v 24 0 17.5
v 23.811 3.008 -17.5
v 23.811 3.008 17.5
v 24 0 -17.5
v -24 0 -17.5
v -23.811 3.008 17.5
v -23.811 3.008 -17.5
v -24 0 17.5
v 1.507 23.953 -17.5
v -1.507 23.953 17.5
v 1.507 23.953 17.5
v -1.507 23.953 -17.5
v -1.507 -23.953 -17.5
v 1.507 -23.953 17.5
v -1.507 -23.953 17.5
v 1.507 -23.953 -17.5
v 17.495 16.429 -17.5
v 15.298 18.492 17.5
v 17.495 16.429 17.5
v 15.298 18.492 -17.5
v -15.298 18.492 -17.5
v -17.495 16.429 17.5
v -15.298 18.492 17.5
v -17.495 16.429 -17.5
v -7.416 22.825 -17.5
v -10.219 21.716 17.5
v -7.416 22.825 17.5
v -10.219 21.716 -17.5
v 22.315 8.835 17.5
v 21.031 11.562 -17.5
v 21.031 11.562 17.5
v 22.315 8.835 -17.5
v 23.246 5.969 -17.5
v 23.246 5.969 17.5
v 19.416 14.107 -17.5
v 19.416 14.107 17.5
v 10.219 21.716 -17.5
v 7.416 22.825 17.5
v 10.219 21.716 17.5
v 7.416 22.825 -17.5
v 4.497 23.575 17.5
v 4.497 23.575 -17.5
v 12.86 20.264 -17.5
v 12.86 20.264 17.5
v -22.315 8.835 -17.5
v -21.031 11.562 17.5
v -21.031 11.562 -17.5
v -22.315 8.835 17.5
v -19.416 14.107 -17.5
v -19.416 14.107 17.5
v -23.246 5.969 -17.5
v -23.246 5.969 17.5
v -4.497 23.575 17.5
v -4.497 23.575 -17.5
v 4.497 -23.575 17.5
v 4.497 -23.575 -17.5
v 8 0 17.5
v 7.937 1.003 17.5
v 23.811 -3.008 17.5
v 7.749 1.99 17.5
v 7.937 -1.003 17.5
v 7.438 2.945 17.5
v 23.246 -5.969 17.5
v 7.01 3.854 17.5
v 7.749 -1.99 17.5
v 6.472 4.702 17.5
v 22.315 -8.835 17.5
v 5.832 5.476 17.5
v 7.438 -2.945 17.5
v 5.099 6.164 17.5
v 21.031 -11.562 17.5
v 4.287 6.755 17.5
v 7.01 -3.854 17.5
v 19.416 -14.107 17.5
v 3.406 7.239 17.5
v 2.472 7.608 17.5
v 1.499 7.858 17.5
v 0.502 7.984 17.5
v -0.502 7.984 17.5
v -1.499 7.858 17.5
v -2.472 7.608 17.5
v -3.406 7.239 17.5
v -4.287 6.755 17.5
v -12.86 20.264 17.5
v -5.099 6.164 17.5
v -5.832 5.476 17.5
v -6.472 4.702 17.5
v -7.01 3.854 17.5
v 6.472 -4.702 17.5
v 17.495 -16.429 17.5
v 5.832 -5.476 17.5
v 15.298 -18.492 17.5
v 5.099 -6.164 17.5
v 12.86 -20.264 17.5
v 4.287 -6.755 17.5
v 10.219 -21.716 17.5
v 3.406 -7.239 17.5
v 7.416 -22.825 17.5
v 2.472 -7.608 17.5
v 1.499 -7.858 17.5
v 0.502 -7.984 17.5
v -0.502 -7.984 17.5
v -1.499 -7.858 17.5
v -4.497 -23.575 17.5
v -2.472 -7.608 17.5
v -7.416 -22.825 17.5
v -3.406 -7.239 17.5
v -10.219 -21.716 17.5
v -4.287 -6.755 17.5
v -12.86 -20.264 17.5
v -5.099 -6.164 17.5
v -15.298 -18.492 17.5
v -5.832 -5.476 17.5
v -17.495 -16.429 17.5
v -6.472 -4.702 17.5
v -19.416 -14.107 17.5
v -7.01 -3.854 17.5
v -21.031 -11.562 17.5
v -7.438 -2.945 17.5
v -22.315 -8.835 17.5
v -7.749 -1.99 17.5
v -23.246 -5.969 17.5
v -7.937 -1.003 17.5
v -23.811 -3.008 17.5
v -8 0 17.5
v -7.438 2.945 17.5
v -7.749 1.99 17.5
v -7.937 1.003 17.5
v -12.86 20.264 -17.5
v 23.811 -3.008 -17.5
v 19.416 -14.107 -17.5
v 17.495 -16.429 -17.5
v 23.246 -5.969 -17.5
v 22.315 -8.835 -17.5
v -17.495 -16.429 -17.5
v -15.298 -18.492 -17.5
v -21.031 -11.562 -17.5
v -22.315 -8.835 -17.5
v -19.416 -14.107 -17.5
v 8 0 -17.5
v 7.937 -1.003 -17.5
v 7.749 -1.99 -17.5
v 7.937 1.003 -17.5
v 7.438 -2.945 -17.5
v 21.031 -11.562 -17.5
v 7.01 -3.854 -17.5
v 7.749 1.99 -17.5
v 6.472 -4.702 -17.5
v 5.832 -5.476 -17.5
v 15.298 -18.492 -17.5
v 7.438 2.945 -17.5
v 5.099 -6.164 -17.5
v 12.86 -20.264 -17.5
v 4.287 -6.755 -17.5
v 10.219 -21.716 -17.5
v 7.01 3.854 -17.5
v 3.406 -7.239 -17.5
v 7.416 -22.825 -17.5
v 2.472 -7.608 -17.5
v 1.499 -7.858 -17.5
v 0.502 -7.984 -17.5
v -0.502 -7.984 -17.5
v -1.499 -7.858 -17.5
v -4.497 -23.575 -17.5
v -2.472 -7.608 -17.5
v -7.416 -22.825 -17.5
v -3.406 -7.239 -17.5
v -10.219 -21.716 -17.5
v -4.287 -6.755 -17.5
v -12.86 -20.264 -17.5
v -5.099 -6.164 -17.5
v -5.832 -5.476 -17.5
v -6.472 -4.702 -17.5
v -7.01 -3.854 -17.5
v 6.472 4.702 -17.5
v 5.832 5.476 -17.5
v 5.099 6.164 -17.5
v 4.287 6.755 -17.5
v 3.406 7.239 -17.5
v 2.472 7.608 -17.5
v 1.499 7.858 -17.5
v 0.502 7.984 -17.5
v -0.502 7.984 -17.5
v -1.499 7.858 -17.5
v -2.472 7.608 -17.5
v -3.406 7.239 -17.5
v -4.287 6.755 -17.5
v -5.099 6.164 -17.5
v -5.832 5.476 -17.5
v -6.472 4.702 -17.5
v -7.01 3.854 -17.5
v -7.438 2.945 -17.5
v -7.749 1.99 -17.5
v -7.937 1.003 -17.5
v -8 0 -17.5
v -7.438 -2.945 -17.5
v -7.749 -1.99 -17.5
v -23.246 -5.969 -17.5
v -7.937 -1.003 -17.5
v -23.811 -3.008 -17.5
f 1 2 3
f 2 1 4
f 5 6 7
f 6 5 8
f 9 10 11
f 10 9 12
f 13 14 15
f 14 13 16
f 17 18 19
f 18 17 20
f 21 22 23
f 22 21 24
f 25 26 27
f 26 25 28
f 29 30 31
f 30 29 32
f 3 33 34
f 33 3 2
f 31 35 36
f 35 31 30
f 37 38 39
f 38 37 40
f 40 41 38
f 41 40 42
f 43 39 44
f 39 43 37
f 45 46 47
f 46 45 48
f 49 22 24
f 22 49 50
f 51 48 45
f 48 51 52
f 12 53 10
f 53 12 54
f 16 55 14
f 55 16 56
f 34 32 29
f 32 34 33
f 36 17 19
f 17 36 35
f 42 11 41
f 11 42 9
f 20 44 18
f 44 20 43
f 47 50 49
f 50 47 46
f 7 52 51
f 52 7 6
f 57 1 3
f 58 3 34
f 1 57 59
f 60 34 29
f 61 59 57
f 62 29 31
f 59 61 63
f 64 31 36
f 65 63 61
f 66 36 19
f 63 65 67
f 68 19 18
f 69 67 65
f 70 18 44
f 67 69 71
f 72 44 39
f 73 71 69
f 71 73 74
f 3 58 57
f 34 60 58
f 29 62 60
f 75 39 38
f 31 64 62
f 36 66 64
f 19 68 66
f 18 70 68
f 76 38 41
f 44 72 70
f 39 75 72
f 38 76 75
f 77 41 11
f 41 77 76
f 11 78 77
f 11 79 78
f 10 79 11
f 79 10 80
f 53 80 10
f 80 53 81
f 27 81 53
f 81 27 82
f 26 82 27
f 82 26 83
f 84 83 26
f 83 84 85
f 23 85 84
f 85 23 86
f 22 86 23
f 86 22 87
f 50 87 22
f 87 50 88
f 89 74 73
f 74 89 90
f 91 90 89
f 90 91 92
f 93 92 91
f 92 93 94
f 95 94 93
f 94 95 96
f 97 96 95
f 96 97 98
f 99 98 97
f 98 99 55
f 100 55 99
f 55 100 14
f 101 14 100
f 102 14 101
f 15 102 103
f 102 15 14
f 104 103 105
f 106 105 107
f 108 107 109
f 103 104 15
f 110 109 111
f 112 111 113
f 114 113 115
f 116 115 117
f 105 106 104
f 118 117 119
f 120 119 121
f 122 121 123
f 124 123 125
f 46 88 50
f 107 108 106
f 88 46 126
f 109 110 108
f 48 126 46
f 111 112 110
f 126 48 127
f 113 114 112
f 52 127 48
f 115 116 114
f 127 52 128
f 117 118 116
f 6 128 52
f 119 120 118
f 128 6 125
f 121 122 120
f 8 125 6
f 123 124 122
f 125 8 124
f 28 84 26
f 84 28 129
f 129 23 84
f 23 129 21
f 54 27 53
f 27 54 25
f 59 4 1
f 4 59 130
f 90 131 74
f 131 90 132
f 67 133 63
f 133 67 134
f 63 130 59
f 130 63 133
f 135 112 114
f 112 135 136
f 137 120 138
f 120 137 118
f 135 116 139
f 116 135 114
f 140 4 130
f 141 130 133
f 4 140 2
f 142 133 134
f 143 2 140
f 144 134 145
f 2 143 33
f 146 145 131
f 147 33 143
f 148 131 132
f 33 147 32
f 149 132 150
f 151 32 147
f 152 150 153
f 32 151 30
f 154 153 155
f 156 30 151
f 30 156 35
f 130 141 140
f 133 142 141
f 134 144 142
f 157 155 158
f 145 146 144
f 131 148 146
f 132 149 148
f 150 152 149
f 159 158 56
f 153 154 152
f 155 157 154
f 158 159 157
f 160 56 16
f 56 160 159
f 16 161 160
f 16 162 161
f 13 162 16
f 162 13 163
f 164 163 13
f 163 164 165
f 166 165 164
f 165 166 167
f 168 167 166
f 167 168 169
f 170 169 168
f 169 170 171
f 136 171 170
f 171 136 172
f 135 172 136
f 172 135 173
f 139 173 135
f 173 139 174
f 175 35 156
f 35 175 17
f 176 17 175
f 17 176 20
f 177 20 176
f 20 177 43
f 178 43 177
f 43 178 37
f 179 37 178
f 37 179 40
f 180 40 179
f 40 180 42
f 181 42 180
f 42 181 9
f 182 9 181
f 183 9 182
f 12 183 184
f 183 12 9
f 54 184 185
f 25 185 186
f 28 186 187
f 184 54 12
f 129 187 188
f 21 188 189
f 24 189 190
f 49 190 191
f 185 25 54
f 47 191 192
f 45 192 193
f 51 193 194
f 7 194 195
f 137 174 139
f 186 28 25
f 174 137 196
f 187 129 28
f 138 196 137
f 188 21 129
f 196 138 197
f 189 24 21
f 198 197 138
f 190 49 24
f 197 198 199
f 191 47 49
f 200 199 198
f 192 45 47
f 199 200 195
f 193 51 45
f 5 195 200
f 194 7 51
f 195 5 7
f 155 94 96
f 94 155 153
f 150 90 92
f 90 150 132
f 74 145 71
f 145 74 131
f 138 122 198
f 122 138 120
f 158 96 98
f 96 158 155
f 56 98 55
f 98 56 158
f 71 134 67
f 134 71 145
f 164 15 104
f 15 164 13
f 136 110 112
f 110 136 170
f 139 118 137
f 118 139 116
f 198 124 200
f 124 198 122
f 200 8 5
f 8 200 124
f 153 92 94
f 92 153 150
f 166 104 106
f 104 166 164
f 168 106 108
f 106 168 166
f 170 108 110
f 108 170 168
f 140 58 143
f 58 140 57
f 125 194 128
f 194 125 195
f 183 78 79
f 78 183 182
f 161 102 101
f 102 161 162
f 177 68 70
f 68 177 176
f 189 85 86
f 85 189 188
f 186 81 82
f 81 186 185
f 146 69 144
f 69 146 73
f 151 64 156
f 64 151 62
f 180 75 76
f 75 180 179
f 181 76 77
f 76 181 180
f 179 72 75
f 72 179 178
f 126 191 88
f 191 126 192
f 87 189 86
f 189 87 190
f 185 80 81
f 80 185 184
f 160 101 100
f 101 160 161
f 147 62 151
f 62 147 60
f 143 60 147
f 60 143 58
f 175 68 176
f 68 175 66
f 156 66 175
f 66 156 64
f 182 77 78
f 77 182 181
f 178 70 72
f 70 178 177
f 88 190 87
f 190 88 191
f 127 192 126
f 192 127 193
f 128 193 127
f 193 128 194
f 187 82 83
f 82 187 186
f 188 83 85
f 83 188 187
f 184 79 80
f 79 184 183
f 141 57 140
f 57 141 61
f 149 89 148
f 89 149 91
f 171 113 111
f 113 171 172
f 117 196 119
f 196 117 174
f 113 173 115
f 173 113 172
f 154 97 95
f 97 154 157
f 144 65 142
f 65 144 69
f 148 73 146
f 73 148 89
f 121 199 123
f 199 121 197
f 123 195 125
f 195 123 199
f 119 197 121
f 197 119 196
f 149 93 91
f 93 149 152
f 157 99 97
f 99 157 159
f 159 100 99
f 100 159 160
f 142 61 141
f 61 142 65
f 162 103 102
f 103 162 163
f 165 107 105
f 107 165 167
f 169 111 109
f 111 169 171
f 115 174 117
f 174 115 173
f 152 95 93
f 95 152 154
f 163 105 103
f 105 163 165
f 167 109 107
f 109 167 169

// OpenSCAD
$fn = 50;


difference() {
	union() {
		translate(v = [0, 0, -17.5000000000]) {
			cylinder(h = 35, r = 24.0000000000);
		}
	}
	union() {
		translate(v = [0, 0, -100.0000000000]) {
			cylinder(h = 200, r = 8);
		}
	}
}
